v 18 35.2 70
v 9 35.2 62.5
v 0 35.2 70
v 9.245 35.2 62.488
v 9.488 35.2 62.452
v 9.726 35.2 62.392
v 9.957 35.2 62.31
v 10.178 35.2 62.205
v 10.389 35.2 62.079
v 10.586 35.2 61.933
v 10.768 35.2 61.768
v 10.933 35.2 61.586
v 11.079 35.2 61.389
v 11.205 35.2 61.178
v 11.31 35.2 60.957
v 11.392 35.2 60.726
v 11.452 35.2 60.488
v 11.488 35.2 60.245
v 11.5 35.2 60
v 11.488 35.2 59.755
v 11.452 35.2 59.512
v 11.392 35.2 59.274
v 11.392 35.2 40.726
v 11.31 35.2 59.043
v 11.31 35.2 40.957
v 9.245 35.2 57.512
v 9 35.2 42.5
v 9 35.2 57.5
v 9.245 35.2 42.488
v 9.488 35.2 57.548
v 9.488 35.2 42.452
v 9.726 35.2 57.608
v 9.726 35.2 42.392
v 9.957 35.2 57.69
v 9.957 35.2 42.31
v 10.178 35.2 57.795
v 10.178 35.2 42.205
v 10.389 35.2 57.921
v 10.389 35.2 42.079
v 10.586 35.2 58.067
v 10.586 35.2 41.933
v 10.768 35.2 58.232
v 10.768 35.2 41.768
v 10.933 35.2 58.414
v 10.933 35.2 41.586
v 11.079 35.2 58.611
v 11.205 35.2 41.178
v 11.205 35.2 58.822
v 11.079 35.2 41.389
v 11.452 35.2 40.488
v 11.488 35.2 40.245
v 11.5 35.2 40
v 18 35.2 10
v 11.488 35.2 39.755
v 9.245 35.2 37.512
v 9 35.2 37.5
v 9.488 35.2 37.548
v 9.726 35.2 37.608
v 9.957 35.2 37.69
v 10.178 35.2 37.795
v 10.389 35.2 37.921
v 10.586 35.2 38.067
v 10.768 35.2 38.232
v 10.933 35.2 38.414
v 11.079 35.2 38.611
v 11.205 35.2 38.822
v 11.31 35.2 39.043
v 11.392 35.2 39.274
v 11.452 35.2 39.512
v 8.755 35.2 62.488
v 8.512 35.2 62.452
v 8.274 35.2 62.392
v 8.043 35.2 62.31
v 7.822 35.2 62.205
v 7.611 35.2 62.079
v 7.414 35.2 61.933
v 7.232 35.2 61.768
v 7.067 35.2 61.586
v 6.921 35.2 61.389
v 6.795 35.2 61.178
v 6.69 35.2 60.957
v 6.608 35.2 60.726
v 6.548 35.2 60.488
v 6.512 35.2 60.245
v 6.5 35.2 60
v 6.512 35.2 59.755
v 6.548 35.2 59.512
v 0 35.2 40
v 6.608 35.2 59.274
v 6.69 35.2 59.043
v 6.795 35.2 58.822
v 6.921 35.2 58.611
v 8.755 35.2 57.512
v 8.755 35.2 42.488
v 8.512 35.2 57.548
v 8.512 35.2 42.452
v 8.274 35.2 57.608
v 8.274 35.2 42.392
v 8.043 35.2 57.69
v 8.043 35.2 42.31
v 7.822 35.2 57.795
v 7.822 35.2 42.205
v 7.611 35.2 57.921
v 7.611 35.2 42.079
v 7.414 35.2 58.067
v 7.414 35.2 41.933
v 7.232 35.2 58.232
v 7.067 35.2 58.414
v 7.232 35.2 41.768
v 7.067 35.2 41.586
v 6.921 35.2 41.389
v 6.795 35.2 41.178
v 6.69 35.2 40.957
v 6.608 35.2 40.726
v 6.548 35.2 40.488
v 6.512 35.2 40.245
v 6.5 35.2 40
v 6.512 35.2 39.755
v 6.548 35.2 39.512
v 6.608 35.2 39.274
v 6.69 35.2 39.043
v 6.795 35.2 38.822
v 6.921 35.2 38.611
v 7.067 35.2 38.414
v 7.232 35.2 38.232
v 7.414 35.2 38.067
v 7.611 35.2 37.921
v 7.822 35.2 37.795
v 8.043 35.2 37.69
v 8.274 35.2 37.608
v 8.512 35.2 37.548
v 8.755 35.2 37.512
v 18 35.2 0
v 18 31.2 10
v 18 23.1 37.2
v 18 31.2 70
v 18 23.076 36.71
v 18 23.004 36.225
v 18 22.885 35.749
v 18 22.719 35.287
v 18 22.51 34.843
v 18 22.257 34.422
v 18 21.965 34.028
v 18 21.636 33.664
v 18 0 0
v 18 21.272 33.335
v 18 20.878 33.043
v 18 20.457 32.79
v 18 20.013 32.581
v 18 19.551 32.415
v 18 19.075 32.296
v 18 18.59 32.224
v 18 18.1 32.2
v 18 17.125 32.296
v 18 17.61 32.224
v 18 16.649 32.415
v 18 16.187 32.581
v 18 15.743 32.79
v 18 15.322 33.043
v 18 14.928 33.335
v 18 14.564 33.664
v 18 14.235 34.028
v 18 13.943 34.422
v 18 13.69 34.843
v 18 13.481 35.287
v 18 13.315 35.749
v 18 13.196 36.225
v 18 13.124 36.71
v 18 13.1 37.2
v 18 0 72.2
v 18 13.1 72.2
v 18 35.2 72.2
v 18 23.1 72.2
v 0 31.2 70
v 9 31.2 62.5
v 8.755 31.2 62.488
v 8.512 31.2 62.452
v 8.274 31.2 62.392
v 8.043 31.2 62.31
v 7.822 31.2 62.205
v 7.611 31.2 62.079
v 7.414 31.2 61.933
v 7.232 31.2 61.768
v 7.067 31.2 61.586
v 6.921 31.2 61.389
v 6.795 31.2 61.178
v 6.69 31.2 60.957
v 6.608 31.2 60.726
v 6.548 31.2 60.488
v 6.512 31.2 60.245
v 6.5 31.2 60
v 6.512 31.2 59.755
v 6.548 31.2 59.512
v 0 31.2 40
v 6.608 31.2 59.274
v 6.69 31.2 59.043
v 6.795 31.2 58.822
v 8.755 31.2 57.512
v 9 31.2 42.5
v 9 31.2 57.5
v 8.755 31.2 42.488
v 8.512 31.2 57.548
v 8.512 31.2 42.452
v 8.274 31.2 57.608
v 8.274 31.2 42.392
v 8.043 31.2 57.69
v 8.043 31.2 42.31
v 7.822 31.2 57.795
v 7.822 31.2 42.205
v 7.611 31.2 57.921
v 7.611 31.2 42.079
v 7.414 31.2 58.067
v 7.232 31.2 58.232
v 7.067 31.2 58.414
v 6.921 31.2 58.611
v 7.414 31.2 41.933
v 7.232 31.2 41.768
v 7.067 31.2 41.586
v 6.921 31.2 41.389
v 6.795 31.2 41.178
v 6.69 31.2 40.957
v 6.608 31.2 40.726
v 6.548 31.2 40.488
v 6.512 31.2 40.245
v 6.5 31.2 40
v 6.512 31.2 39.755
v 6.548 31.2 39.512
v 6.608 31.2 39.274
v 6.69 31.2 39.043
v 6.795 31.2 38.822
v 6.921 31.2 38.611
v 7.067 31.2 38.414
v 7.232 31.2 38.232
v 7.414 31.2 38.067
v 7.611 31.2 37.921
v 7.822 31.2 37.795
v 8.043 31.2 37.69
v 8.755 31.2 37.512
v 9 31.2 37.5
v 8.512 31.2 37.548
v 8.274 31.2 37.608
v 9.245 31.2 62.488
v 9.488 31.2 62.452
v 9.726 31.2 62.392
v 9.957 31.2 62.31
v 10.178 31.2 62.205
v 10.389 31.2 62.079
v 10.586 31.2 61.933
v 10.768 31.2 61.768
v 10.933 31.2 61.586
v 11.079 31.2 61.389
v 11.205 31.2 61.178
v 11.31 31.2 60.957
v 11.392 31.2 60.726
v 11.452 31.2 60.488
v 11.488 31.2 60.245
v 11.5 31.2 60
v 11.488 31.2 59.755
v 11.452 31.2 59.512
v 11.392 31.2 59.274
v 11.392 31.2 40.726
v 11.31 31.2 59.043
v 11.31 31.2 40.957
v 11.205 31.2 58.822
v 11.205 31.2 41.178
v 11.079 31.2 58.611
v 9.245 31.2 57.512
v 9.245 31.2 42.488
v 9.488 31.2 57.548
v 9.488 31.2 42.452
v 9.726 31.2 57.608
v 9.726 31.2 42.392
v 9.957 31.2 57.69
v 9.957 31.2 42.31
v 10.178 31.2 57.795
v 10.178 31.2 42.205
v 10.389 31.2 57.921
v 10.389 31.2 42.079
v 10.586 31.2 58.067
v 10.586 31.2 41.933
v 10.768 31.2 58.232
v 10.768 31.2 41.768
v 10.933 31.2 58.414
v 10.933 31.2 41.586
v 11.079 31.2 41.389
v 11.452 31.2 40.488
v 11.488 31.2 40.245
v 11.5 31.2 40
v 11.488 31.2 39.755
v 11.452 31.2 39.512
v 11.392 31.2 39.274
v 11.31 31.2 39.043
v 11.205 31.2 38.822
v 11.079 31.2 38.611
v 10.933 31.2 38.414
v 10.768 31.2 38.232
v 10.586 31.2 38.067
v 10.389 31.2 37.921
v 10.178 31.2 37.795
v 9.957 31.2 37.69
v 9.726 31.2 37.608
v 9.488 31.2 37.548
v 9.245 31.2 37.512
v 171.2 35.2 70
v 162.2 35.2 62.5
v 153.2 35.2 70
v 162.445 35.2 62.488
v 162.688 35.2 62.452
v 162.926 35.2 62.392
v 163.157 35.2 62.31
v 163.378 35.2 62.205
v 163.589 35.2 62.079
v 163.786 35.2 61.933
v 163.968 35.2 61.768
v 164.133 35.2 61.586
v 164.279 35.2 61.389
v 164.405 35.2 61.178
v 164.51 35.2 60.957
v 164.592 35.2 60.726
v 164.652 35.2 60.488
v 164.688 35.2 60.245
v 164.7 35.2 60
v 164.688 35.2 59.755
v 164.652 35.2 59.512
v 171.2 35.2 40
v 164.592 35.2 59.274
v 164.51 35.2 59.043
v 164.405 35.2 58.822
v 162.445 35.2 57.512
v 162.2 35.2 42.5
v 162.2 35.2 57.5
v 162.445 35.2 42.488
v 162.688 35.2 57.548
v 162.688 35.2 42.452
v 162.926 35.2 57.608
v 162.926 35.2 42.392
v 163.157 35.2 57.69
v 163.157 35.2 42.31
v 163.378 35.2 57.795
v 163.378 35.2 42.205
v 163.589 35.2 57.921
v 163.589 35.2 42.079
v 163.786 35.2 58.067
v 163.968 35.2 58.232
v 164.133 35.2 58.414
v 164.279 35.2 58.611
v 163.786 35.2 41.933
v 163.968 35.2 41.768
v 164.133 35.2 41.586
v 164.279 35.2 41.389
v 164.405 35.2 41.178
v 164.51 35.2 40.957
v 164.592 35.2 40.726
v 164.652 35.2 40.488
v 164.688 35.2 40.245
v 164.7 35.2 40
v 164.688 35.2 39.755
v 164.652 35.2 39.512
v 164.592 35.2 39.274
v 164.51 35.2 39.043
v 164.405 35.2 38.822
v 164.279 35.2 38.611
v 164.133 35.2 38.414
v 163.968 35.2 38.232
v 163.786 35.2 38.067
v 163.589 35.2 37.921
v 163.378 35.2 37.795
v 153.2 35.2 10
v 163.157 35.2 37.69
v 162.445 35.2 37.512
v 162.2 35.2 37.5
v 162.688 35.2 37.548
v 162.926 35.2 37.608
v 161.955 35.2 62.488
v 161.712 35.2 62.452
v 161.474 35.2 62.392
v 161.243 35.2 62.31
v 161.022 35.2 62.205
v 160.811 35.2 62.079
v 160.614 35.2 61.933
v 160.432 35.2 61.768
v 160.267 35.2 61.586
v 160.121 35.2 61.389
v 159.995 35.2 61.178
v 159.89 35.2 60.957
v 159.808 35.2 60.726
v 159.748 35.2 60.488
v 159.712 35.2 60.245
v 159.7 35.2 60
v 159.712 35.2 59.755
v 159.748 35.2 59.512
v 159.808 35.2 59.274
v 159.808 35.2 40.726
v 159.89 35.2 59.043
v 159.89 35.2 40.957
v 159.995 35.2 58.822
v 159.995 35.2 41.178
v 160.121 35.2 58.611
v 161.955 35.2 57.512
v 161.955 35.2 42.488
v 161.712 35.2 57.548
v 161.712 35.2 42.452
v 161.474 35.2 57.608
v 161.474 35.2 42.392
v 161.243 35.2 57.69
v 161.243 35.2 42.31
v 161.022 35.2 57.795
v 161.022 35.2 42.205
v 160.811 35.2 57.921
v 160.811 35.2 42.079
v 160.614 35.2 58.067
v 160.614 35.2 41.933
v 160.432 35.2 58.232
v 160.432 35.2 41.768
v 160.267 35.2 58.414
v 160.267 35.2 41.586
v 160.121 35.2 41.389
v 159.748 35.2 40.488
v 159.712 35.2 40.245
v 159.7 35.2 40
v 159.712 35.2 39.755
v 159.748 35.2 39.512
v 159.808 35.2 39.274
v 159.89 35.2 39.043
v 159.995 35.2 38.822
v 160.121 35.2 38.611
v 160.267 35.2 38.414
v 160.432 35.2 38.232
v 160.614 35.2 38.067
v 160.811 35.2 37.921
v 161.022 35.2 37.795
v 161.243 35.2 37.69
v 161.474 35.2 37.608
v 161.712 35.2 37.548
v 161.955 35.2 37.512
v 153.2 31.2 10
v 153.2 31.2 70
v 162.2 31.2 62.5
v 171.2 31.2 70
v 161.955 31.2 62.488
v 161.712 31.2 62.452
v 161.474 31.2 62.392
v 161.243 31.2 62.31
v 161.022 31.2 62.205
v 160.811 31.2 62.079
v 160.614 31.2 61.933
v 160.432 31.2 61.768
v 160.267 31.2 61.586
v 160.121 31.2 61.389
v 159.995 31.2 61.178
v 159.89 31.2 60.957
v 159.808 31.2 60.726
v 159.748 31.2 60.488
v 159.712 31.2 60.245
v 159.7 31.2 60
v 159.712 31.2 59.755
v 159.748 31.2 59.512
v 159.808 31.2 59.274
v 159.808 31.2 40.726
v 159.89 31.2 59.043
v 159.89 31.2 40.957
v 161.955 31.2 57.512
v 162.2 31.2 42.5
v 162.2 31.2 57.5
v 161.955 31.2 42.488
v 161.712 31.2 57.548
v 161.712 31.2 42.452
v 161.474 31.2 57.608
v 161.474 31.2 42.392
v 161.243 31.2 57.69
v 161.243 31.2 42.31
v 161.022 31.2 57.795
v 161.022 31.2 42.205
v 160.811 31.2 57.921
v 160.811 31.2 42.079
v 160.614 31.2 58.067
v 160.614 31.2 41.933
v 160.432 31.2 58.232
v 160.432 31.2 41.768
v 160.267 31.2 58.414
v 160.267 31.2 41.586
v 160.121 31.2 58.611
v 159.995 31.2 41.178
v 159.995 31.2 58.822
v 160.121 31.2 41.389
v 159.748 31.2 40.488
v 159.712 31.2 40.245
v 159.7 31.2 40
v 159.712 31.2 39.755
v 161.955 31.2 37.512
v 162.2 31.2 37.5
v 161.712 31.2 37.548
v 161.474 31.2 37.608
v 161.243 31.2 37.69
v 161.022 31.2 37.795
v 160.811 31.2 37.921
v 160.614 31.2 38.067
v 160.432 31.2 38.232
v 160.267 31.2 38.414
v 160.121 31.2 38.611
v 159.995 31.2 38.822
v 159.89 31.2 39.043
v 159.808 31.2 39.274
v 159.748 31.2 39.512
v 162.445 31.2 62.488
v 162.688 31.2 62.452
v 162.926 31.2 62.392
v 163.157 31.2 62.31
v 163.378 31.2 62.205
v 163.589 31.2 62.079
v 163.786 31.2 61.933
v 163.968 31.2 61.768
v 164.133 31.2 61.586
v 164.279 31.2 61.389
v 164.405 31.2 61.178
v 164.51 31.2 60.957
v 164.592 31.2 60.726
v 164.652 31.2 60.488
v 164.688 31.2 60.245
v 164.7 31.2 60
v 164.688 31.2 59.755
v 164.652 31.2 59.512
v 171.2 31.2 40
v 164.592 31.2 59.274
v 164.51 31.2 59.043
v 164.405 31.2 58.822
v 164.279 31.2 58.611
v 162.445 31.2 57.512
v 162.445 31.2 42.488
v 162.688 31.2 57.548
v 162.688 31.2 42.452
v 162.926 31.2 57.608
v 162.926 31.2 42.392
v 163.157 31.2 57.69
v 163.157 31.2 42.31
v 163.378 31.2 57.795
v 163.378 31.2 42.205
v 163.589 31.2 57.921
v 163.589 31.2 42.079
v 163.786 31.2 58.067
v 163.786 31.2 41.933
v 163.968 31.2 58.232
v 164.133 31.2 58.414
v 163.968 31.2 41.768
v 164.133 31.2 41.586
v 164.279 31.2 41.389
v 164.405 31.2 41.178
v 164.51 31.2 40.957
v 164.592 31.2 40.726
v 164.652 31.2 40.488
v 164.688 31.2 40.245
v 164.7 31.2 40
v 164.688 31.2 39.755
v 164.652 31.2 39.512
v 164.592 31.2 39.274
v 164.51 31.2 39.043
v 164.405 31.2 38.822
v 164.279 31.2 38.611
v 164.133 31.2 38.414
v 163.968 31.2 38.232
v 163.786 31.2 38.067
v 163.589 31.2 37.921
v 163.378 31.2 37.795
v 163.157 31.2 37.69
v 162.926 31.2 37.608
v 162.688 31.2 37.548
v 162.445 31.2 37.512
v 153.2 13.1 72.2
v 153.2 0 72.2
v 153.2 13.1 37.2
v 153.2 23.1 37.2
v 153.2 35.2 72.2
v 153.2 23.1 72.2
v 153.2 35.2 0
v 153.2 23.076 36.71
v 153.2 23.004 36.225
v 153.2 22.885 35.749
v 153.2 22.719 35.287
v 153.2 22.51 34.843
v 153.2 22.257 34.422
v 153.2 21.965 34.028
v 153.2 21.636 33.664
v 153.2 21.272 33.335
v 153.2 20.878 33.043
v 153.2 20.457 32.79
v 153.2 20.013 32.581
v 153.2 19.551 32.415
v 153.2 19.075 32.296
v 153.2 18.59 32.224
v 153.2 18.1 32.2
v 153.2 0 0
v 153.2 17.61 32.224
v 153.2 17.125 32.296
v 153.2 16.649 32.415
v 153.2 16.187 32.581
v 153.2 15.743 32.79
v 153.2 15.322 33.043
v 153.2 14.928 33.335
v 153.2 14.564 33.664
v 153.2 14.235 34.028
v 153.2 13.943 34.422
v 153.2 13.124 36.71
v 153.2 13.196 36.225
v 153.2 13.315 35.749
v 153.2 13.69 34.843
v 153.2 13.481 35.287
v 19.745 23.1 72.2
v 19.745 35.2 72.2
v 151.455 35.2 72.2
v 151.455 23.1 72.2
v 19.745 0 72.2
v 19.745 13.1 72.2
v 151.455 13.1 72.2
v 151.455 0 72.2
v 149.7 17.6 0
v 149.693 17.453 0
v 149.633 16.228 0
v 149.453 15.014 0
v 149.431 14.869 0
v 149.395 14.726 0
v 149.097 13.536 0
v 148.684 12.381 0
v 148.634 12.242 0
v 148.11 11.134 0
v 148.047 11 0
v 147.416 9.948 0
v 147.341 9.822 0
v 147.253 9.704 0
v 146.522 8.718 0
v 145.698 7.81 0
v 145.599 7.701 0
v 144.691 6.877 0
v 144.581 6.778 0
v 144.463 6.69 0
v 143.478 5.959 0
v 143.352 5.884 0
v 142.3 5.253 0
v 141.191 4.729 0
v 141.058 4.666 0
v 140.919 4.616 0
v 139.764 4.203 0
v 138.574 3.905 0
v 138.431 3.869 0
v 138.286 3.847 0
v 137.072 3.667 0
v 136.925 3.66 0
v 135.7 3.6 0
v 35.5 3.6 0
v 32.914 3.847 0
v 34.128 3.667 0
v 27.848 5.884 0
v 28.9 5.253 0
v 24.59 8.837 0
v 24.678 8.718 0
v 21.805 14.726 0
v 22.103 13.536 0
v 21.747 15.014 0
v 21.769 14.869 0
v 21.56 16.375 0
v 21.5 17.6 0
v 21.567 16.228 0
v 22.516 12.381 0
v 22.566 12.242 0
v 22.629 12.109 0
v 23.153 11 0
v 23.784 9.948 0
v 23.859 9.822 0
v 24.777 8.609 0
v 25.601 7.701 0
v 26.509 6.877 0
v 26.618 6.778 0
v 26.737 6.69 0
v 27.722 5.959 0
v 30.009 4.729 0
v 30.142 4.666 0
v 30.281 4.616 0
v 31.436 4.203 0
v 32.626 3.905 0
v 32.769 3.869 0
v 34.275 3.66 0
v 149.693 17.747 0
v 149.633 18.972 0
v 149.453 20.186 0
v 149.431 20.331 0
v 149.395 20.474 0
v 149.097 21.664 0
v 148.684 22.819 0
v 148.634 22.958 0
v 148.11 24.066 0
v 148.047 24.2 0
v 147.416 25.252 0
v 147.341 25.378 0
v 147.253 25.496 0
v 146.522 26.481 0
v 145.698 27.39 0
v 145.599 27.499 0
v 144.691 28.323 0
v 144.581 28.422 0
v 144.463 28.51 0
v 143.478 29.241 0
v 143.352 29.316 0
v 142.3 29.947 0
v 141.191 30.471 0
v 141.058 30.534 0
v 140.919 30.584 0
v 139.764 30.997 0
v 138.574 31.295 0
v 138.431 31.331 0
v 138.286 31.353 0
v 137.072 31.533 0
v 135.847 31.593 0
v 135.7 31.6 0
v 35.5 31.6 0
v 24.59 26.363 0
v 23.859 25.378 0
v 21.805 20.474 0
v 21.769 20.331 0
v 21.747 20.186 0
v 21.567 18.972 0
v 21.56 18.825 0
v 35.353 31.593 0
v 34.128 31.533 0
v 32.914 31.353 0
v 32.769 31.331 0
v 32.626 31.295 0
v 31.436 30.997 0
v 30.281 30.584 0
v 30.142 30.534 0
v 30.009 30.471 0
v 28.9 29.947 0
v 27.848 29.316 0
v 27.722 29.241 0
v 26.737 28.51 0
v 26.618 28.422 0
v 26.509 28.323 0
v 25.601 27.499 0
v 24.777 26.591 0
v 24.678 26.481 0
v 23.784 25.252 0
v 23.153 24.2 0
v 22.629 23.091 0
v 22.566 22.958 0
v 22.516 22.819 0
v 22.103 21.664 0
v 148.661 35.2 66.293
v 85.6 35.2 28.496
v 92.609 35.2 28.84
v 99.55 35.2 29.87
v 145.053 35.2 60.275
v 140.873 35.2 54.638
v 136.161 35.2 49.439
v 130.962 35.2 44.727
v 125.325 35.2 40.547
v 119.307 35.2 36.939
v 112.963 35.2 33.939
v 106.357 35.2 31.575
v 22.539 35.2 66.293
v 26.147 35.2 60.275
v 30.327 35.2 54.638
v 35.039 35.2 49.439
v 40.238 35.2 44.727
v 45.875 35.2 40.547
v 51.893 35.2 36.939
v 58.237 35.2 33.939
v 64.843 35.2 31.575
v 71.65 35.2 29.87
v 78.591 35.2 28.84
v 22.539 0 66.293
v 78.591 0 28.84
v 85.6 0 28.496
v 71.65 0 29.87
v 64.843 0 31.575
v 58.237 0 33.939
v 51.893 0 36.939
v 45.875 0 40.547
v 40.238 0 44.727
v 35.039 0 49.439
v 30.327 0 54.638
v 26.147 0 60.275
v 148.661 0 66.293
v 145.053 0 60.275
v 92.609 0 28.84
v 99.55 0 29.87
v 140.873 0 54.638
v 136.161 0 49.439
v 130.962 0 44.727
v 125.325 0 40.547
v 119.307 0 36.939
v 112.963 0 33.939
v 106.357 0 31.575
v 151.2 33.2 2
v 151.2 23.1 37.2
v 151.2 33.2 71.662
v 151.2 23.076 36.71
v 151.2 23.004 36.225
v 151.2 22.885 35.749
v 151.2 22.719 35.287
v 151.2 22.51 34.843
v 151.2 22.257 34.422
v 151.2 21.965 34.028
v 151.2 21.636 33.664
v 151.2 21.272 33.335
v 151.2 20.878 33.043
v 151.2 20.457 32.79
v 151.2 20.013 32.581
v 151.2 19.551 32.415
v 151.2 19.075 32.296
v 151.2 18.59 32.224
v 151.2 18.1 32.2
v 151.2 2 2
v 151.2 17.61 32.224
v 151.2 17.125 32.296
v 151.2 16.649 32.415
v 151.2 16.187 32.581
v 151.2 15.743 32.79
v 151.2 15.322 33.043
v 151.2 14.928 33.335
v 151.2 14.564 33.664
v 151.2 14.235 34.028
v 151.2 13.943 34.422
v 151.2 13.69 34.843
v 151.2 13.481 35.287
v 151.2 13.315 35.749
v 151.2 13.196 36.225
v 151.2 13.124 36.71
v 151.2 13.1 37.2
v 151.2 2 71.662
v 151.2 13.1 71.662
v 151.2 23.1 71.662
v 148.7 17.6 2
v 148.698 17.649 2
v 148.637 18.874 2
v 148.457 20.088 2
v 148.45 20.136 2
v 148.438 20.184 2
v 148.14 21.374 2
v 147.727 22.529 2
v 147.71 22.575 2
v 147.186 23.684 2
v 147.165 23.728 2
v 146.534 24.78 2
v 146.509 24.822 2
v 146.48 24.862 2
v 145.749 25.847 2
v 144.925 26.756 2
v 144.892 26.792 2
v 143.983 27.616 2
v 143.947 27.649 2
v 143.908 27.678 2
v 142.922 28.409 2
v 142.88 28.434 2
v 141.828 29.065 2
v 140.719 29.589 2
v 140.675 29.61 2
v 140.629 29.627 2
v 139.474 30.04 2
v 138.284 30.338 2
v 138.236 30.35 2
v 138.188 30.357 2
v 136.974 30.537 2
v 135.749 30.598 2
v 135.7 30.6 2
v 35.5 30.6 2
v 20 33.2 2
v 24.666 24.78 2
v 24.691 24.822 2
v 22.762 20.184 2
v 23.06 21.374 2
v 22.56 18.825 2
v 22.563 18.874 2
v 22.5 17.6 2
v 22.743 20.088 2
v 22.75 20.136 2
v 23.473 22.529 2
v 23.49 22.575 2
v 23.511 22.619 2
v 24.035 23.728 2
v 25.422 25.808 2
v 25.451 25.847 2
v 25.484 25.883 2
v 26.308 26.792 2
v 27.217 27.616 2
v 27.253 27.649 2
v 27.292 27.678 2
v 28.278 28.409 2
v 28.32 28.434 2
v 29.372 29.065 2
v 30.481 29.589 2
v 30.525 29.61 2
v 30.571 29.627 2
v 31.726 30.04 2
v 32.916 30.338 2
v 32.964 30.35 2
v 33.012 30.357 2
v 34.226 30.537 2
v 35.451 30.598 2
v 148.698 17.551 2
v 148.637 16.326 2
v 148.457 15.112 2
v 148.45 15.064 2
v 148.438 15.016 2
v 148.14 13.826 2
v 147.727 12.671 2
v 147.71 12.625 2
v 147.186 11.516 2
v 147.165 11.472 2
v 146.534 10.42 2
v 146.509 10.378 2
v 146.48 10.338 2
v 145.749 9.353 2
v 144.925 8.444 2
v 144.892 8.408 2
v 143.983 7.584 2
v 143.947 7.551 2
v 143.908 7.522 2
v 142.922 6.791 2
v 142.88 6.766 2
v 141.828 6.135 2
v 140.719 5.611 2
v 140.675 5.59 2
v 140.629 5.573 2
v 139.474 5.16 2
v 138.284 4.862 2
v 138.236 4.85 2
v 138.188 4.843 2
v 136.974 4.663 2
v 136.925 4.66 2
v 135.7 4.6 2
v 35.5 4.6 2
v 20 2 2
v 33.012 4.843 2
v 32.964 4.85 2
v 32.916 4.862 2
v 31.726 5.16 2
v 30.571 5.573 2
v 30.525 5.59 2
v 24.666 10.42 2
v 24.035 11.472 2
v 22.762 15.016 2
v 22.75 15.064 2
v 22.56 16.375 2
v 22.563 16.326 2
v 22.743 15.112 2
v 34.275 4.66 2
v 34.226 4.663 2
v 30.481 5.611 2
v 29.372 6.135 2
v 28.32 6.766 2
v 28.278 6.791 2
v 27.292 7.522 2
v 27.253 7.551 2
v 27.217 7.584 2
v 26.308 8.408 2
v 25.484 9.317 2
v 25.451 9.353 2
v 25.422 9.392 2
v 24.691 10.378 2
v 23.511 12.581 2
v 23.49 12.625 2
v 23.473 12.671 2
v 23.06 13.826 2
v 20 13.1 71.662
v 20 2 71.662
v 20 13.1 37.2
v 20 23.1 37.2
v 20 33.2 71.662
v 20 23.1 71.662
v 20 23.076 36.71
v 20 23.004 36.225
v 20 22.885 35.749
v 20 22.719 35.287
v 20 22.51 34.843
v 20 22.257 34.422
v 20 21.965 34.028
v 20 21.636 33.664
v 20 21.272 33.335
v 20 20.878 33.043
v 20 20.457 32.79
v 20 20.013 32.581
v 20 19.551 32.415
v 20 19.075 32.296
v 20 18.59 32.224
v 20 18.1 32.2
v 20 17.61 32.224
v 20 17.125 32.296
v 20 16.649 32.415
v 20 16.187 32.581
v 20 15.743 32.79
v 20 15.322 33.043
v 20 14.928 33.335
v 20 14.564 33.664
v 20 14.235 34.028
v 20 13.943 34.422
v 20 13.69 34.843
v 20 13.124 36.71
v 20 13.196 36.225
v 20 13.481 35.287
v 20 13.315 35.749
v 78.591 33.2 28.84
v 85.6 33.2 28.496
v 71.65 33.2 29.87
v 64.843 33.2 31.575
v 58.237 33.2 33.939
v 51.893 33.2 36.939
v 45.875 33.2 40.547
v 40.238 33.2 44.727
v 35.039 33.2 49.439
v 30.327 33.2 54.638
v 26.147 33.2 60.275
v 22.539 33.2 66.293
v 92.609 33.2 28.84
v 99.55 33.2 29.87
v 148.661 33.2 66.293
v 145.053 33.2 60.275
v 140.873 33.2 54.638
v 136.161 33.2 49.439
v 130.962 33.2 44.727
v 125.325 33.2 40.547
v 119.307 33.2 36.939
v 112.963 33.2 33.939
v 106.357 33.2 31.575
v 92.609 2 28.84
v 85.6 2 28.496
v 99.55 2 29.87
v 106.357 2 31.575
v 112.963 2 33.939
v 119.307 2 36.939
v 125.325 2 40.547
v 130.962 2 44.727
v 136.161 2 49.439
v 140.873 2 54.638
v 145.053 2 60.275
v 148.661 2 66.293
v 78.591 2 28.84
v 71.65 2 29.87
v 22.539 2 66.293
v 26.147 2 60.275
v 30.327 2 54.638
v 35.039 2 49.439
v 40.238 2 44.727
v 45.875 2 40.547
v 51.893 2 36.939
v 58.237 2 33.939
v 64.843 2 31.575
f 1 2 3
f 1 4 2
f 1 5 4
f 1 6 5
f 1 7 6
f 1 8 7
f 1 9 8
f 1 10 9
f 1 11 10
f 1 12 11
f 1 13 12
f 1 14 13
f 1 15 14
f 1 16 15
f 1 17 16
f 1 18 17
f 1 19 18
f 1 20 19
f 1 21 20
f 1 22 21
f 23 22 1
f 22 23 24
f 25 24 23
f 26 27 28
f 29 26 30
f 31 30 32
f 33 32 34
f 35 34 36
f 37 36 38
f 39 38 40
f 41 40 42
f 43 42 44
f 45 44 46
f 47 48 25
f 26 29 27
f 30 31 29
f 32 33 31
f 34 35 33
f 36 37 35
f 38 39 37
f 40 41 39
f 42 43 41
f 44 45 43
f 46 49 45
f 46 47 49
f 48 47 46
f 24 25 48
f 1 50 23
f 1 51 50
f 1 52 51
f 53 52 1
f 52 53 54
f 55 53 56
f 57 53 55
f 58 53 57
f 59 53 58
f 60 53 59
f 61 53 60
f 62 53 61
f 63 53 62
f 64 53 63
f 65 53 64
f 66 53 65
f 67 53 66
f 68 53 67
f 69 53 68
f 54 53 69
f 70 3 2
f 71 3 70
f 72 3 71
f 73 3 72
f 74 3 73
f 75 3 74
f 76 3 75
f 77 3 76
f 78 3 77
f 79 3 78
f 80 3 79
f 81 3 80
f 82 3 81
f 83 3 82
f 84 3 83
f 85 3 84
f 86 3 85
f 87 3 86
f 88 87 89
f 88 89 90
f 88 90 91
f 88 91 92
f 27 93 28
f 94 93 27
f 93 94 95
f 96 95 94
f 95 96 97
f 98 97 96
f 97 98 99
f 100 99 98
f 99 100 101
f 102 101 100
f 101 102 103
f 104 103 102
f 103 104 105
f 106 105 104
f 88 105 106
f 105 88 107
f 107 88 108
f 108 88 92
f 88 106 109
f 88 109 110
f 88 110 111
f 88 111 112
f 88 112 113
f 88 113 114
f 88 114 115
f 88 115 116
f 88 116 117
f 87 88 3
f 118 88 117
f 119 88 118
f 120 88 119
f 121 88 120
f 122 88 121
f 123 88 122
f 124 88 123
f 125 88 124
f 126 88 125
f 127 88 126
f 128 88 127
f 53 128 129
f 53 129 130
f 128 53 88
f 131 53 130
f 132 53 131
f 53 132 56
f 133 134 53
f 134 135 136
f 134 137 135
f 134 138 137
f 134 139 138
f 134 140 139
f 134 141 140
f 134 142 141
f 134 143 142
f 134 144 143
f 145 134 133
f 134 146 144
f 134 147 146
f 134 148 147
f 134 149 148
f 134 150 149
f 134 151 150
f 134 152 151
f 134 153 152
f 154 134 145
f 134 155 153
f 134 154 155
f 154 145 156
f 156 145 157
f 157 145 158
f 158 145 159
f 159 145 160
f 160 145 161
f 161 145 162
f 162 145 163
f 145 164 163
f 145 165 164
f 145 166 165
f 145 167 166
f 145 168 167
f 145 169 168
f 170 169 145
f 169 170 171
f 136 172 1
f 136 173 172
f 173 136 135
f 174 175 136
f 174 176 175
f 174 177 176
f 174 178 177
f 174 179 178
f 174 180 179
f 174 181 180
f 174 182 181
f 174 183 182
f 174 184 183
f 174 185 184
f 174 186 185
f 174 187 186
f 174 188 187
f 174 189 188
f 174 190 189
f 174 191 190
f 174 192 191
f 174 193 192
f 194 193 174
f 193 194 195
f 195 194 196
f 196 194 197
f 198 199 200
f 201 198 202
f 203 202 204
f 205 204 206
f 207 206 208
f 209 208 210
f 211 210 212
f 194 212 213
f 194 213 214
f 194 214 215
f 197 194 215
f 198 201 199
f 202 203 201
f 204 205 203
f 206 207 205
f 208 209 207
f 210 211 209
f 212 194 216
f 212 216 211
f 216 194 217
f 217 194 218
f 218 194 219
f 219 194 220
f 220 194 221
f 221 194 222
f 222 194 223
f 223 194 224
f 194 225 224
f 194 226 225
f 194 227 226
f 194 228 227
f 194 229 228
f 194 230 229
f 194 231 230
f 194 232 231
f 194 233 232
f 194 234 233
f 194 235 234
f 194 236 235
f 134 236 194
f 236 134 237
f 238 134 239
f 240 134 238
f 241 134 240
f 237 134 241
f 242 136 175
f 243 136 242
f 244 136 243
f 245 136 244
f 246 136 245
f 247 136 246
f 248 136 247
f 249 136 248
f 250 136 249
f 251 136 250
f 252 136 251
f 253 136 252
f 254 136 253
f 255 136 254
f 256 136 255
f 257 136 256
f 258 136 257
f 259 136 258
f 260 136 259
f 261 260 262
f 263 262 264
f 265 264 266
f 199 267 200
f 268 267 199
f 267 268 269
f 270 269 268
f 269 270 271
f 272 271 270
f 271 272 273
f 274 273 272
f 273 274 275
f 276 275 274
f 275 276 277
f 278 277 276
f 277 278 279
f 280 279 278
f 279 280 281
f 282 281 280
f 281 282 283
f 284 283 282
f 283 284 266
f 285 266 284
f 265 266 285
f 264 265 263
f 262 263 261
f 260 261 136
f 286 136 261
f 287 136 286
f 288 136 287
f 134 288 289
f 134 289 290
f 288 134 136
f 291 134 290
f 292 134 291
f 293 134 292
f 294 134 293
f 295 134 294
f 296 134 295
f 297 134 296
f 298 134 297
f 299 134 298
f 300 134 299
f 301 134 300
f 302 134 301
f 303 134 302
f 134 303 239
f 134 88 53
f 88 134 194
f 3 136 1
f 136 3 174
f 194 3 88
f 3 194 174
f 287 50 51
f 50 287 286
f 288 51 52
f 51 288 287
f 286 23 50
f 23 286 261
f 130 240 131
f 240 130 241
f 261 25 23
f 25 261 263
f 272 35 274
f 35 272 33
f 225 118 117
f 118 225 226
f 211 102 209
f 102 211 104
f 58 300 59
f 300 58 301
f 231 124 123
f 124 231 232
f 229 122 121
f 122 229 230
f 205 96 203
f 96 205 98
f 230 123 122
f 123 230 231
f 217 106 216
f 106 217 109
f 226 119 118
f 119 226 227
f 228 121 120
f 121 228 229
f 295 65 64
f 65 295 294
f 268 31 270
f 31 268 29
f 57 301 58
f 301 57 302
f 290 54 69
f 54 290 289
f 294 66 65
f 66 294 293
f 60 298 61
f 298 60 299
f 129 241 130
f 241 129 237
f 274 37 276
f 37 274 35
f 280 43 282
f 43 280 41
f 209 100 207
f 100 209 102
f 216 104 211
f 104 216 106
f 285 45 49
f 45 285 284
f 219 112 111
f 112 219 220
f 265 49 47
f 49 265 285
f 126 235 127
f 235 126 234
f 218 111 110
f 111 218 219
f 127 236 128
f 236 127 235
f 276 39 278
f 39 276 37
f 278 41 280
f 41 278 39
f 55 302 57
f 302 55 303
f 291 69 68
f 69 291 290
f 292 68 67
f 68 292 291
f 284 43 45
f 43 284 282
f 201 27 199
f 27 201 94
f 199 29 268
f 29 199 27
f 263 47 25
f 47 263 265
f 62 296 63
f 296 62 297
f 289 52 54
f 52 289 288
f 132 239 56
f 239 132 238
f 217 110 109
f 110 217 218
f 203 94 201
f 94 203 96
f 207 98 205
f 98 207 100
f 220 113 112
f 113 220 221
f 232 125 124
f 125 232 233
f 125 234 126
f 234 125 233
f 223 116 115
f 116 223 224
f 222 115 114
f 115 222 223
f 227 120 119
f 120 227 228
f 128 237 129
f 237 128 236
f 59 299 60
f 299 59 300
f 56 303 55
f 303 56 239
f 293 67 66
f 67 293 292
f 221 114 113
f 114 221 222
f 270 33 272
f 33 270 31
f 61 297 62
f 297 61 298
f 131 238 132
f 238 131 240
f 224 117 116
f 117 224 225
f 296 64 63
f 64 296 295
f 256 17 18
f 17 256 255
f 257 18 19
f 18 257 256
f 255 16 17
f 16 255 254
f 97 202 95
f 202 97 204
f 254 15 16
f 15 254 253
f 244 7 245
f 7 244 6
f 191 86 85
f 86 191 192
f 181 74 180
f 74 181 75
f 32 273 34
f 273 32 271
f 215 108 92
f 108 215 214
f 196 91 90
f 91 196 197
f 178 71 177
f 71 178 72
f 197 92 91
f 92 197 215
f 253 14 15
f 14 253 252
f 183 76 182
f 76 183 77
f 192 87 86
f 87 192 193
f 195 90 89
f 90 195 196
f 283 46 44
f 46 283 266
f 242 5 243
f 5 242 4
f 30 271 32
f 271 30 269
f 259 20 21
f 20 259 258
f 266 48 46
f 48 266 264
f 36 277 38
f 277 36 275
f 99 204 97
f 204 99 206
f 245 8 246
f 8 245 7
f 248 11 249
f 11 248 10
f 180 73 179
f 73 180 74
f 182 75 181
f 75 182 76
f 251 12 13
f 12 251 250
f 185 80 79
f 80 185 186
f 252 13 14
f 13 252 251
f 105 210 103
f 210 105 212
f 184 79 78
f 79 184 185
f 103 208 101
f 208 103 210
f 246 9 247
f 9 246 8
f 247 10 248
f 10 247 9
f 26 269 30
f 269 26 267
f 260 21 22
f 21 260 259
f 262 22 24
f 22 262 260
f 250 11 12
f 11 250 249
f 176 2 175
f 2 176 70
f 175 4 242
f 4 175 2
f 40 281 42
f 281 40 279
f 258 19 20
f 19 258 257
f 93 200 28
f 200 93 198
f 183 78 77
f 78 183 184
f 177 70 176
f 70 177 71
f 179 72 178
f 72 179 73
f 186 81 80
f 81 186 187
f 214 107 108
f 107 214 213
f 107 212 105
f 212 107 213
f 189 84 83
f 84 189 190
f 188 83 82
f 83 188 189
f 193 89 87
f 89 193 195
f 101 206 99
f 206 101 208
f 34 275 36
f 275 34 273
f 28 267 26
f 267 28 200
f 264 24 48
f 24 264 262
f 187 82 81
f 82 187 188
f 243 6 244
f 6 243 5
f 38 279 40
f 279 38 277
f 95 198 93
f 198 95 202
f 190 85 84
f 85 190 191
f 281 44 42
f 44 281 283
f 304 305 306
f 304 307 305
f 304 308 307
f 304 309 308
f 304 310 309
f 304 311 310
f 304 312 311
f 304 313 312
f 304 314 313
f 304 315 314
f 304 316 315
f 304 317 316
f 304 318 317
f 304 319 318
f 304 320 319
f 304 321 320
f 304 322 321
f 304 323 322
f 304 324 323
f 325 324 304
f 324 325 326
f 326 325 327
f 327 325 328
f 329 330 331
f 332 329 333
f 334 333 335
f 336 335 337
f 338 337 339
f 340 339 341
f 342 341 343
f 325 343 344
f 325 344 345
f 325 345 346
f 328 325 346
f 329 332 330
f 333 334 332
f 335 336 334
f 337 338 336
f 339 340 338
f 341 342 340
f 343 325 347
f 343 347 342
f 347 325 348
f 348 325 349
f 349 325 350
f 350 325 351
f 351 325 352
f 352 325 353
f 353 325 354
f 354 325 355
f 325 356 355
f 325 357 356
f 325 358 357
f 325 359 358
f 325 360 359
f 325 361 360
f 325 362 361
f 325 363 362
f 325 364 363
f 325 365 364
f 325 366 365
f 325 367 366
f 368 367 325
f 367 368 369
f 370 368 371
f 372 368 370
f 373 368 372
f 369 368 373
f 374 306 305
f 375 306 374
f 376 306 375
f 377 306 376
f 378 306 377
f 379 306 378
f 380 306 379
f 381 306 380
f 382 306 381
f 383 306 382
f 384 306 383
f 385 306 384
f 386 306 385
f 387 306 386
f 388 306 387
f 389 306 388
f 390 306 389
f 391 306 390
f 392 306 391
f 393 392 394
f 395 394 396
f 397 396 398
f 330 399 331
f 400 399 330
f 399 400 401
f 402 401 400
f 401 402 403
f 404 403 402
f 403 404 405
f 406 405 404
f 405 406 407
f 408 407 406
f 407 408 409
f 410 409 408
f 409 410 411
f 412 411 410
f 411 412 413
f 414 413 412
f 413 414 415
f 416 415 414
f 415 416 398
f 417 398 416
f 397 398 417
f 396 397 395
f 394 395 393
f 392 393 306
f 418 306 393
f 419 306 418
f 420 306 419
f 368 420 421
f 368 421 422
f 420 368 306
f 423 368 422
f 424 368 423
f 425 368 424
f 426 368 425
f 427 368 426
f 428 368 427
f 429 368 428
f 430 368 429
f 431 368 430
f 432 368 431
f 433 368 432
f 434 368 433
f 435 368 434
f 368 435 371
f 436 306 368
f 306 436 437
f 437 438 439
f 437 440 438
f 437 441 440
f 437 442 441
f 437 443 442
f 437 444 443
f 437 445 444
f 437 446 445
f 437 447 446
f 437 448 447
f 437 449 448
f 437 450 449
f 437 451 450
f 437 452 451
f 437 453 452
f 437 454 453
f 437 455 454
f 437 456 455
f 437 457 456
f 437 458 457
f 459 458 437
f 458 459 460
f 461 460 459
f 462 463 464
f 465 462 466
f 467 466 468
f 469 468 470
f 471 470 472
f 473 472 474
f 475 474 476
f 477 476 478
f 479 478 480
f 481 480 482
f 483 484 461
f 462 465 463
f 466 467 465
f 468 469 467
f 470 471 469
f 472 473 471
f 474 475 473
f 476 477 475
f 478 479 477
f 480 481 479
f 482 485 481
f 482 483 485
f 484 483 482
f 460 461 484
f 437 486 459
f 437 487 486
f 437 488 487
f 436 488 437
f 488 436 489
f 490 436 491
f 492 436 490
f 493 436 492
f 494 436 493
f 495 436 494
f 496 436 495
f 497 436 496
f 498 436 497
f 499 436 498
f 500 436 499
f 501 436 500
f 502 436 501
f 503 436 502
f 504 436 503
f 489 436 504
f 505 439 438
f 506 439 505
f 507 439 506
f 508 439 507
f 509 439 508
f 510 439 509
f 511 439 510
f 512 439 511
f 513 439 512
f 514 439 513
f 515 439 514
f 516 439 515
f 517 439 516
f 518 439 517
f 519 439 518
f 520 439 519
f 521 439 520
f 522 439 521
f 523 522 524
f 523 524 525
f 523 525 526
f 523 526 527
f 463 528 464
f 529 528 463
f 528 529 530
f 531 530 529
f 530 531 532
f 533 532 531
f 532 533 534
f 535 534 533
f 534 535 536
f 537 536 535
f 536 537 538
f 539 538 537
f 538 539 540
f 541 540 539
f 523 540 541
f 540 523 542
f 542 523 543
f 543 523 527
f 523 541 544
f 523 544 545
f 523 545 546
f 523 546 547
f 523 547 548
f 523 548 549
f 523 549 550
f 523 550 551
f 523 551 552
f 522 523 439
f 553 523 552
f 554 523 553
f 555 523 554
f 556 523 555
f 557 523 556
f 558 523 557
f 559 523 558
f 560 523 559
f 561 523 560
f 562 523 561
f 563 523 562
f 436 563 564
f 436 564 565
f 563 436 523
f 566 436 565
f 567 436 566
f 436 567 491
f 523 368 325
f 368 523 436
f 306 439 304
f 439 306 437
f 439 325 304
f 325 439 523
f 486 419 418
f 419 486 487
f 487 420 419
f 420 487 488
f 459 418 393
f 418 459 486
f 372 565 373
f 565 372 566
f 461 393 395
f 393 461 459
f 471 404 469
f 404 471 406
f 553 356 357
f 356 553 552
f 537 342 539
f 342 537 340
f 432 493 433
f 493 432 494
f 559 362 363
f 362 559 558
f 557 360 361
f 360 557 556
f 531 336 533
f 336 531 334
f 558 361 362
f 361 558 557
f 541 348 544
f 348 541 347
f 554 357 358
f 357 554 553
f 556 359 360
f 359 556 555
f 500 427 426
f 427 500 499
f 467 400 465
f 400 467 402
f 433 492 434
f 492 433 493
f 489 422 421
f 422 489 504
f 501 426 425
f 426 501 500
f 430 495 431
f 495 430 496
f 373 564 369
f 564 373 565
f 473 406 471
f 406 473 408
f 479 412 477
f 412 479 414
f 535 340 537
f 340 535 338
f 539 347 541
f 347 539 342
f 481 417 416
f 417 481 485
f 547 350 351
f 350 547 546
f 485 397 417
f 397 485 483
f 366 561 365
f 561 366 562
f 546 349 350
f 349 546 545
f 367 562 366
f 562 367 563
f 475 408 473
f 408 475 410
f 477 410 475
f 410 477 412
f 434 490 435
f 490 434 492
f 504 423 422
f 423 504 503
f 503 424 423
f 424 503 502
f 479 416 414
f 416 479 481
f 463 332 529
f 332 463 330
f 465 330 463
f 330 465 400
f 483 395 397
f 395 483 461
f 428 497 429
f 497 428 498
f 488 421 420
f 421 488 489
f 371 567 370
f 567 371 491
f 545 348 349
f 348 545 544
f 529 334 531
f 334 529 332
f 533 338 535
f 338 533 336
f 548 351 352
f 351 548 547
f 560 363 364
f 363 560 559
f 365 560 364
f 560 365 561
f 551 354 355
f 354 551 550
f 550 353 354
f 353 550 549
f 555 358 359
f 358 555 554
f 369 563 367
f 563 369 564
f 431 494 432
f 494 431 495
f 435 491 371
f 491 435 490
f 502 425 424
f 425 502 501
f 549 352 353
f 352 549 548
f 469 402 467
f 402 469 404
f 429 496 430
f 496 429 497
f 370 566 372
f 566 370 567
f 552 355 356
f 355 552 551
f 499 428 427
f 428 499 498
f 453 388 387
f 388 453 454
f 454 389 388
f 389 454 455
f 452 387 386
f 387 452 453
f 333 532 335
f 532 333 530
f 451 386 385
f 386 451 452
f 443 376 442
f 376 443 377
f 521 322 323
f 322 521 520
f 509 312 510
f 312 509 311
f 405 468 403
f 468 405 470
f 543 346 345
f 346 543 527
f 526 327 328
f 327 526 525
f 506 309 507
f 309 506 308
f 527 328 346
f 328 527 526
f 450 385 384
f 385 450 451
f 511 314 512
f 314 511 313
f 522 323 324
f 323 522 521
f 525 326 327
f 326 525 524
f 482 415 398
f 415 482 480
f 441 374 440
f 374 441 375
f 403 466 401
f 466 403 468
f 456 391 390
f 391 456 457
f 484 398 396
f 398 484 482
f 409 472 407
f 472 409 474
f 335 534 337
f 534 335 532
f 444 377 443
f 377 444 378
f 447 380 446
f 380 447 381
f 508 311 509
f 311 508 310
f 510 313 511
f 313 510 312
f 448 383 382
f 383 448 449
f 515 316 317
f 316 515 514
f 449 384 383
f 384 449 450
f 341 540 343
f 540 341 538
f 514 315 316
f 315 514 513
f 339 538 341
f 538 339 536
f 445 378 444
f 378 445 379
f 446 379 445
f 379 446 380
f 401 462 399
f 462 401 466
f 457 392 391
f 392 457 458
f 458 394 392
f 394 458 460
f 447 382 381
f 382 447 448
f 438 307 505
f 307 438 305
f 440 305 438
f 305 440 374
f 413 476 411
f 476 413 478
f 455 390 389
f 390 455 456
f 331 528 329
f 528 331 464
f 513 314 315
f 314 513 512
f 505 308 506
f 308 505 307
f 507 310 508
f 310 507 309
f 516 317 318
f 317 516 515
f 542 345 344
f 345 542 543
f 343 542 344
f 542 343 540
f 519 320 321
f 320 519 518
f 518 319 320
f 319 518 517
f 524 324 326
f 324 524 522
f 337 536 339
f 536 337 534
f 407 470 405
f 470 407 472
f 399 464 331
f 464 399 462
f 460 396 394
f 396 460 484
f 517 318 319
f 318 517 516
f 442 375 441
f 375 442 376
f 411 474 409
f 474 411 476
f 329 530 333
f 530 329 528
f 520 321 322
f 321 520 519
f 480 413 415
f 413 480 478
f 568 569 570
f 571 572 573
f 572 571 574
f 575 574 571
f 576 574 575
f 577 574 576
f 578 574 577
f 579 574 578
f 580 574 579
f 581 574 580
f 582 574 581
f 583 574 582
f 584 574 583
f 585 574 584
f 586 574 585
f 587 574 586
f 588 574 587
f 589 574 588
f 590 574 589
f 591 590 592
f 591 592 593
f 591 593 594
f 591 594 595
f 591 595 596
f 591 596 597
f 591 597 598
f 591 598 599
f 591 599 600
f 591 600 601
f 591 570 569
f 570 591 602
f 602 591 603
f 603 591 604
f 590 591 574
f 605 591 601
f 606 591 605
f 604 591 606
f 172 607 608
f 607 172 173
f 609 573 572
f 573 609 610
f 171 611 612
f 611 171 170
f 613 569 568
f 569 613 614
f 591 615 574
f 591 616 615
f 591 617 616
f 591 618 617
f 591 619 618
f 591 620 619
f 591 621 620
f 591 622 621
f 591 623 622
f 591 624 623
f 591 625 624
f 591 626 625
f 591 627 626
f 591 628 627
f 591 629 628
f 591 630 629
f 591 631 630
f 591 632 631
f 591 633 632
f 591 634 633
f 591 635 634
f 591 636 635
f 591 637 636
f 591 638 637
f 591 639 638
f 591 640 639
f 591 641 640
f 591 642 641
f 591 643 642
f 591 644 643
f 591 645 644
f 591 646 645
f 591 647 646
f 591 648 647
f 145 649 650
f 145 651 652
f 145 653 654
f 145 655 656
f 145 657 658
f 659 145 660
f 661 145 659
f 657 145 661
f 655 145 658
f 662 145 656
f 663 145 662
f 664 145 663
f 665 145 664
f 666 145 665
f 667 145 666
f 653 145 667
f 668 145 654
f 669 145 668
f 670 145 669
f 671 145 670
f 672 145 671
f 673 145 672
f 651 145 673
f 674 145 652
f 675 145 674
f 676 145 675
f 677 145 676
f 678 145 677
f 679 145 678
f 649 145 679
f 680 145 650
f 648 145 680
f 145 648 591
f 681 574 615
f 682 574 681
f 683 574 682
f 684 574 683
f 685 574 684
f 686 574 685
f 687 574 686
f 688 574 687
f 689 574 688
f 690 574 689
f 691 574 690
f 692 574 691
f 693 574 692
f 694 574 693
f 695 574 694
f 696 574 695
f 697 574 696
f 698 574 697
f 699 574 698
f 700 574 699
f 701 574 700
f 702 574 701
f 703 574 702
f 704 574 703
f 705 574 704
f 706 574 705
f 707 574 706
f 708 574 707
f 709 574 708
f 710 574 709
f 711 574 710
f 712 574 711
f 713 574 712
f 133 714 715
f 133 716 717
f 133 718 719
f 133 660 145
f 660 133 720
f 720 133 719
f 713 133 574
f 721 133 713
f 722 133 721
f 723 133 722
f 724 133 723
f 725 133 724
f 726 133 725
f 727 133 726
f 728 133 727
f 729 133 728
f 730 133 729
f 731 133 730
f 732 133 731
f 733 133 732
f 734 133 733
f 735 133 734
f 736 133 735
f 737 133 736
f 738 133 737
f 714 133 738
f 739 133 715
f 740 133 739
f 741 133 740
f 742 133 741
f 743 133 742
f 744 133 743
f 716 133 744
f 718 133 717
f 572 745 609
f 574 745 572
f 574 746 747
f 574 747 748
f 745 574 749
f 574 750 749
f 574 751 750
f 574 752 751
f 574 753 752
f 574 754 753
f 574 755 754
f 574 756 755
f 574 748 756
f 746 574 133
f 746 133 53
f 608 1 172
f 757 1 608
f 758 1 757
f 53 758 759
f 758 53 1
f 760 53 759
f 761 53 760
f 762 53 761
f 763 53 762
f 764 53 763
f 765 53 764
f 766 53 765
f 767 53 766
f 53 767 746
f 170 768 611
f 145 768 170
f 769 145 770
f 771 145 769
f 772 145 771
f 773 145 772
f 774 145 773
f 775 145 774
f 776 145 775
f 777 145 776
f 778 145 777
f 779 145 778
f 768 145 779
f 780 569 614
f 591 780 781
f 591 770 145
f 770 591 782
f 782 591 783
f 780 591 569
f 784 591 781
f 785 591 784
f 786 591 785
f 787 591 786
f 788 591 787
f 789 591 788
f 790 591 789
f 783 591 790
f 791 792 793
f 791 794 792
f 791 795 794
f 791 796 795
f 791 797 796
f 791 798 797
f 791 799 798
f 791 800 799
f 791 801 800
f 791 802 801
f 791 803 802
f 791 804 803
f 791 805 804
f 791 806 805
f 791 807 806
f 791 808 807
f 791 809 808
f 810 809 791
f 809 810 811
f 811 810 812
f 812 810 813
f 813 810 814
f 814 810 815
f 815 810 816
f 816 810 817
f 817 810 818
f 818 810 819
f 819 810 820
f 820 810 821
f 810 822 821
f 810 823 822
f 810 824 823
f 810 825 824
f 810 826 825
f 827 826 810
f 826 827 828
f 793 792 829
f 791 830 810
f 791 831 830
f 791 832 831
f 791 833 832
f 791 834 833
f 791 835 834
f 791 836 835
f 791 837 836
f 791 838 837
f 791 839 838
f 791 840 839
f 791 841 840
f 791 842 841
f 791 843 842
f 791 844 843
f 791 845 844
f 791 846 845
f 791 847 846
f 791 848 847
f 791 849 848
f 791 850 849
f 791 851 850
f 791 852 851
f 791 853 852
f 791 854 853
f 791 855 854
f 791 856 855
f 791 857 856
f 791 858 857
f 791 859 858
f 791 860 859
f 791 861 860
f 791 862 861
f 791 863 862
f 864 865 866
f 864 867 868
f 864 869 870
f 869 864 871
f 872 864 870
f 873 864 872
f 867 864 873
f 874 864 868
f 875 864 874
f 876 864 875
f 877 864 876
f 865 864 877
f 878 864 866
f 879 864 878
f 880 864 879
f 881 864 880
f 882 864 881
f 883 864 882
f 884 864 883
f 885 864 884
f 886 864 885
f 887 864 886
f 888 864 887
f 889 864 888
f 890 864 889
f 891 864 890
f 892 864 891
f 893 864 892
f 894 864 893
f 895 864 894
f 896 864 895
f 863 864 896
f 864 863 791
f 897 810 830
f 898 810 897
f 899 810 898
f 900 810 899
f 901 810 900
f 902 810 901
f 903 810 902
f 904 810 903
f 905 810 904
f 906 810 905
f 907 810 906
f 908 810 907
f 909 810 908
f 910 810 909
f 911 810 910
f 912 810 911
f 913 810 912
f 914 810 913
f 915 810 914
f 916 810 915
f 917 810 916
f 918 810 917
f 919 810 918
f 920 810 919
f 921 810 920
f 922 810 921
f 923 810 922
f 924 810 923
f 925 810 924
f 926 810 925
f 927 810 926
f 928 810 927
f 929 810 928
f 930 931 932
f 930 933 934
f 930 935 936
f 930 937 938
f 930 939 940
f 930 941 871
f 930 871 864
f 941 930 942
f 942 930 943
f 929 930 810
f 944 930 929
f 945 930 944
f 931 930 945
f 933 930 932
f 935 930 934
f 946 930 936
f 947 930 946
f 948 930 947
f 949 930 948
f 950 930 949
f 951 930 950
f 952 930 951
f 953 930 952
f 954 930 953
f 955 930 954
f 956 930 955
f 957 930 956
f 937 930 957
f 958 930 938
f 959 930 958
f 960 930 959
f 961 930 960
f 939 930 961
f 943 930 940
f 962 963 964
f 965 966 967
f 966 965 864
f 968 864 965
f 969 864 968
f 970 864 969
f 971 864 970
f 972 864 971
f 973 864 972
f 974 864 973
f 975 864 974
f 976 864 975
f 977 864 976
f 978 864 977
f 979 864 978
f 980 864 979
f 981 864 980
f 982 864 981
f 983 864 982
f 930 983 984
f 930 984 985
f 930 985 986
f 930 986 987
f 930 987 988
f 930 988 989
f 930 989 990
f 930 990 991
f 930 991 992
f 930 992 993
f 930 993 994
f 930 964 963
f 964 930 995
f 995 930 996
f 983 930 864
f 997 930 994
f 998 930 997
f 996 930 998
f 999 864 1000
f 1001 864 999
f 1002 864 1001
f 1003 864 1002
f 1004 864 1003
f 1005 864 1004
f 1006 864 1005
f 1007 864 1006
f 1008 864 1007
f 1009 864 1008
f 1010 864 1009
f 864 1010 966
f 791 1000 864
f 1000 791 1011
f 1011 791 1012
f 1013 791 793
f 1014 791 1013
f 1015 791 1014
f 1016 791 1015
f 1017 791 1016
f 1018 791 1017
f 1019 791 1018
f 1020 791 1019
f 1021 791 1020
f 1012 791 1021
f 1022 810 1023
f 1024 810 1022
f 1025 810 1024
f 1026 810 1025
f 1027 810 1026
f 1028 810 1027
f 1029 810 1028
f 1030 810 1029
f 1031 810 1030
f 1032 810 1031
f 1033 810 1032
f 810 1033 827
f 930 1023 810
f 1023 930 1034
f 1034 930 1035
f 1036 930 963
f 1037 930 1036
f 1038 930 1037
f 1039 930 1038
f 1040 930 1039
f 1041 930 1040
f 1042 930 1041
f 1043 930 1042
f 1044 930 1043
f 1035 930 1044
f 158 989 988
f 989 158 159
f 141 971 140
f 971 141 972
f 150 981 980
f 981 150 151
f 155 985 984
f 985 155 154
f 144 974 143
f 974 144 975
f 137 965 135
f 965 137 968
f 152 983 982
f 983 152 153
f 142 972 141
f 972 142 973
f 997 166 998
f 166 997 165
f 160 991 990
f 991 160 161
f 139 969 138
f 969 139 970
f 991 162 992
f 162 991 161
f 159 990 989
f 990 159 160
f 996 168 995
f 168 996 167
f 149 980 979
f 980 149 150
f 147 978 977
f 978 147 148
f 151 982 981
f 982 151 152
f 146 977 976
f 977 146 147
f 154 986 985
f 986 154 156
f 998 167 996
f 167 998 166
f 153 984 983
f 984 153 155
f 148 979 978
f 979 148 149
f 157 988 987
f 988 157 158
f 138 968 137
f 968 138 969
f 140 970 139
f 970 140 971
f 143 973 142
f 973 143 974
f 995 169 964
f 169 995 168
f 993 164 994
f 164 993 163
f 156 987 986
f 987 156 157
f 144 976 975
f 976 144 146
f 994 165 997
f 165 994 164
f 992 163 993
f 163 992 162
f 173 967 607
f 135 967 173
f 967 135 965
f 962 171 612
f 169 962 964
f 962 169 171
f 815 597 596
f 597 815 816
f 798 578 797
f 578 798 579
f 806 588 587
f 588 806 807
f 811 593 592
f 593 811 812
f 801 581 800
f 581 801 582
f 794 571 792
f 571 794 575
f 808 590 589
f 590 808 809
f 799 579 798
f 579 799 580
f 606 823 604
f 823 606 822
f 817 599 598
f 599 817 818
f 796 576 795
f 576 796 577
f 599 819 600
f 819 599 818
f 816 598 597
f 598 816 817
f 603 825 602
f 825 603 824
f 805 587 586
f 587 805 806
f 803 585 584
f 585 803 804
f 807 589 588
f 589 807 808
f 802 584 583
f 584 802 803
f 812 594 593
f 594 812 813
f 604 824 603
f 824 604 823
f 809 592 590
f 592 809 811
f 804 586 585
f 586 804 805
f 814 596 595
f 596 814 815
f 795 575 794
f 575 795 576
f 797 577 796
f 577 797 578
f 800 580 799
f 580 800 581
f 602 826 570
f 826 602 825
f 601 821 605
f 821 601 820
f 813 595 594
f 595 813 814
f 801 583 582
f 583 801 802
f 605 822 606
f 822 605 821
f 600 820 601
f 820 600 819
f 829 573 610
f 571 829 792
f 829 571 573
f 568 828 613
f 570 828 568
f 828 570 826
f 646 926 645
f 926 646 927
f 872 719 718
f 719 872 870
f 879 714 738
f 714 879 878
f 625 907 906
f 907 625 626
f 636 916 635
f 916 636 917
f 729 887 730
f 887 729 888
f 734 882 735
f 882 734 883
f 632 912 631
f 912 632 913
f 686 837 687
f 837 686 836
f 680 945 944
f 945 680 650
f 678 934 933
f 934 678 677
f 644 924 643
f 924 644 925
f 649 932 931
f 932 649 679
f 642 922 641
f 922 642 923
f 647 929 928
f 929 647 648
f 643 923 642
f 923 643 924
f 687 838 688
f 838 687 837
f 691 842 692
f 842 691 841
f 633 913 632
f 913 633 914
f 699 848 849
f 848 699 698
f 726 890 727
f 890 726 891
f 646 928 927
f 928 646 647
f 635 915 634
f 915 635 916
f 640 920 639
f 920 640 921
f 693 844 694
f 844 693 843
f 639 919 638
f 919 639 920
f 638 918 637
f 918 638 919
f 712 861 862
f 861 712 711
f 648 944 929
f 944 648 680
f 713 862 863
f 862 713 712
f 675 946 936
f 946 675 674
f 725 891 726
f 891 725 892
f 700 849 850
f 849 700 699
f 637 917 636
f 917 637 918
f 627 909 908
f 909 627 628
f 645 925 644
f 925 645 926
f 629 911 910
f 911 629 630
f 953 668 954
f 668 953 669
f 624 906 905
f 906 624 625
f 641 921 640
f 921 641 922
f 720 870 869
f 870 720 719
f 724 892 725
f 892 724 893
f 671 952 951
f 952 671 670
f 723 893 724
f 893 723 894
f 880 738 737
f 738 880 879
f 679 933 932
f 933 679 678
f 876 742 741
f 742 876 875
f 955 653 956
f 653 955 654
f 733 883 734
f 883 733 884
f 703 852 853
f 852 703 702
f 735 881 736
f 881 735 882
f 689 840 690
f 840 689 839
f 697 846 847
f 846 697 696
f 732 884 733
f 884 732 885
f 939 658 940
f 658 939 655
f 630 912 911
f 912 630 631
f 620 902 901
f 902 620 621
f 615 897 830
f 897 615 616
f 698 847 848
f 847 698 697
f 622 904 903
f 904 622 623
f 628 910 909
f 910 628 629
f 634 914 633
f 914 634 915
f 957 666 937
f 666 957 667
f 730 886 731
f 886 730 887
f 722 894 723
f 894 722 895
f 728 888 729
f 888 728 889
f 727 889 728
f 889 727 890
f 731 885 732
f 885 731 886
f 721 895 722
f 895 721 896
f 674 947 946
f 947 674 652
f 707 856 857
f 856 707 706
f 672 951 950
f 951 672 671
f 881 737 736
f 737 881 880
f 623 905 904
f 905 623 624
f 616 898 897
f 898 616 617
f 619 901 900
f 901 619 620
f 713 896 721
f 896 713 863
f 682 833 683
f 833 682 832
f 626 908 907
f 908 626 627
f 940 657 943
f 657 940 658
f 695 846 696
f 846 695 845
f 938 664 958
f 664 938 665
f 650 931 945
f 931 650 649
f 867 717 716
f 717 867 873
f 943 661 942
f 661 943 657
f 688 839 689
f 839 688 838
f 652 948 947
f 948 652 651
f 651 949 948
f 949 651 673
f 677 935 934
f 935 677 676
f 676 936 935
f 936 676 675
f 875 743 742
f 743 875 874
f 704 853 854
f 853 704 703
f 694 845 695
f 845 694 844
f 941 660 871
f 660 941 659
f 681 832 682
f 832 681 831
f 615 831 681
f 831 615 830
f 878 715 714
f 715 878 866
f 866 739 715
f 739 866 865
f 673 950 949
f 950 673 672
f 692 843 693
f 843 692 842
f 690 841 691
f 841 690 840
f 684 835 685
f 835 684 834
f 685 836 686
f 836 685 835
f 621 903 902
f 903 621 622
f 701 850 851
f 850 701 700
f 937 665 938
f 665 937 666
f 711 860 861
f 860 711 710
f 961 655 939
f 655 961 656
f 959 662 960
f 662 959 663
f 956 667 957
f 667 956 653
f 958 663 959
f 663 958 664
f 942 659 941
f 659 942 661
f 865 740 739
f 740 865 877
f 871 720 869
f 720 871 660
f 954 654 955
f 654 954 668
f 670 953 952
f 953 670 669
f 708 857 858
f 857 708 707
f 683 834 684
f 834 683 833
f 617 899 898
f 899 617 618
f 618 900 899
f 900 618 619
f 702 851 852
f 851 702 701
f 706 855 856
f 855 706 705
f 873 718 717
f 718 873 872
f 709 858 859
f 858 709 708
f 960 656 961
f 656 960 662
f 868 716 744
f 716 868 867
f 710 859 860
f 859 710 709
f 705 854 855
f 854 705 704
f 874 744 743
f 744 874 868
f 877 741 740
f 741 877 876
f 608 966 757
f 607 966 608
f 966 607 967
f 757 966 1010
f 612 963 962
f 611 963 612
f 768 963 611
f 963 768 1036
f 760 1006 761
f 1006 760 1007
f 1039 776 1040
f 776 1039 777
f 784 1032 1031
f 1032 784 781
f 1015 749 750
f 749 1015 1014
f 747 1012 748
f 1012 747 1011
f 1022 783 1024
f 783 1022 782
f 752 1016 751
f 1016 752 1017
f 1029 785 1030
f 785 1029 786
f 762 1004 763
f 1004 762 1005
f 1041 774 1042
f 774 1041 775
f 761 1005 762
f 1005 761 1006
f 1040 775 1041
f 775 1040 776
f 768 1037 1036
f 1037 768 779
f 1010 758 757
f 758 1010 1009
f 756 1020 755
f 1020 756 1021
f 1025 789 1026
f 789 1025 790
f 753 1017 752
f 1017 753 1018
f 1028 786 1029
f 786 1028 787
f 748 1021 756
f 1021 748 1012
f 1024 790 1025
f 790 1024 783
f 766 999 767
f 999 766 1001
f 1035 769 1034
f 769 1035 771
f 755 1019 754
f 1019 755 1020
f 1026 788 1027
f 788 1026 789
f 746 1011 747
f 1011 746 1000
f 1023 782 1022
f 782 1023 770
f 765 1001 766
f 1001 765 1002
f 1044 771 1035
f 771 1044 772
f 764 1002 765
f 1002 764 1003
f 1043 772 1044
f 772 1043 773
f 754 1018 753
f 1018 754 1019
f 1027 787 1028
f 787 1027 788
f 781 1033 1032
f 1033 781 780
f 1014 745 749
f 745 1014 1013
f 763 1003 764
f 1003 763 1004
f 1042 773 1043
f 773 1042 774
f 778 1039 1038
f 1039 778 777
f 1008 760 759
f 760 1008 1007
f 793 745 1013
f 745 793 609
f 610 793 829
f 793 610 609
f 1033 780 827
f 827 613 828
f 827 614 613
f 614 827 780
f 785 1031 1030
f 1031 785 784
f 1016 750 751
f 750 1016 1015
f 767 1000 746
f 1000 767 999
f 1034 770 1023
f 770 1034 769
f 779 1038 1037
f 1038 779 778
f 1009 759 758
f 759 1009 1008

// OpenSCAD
/*
h 70.2
w 130
d 30

8.5 channel extending 40 mm down right side

10 x 45 opening on bottom, starting 5 mm from left side
*/

wiggle = 1.2;

mh = 70.2;
mw = 130 + wiggle;
md = 30 + wiggle;

wall_thickness = 2;

side_notch_tall = 40;
side_notch_width = 9;

bh_end = 3;
bhw = 120;
bhw = mw - (2*bh_end);
bhd = 25;

screw_size = 5;

module mainBody() {
    difference() {
        oversize = 2 * wall_thickness;
        cube([mw + oversize, md + oversize, mh + wall_thickness]);
        translate([wall_thickness,wall_thickness,wall_thickness])
            cube([mw, md, mh+1]);
    }
}

module sideNotch(size, tall) {
    translate([0,0,size/2])
        cube([wall_thickness+2, size, tall-(size/2)]);
    difference() {
        translate([0,size/2,size/2]) rotate([0,90,0]) cylinder(wall_thickness + 2, d=size);
        translate([0,0,size/2])
            cube([wall_thickness+2, size, size]);
    }
}

module bottomNotch() {
    notch_size = 15;
    translate([0,notch_size,0])
        sphere(notch_size);
}

module bottomHole() {
    translate([bhd/2, bhd/2, 0]) cylinder(wall_thickness+1, d=bhd);
    translate([bhd/2, 0, 0]) cube([bhw-bhd, bhd, wall_thickness+1]);
    translate([bhw-(bhd/2), bhd/2, 0]) cylinder(wall_thickness+1, d=bhd);
}


module bottomHole2() {
    minkowski() {
    
        linear_extrude(wall_thickness + 1) {
            translate([bhd/2, bhd/2, 0]) circle(d=bhd);
            translate([bhd/2, 0, 0]) square([bhw-bhd, bhd]);
            translate([bhw-(bhd/2), bhd/2, 0]) circle(d=bhd);
        }
        rotate_extrude()polygon([ [0,0] , [4, -8], [0, -8] ]);
    }
}


module screwTab() {
    tx = 18;
    ty = 30;
    tt = wall_thickness * 2;
    
    module tabBody() {
        rotate([90,0,0])
            translate([0,0,-tt])
                linear_extrude(tt)
                    polygon(points = [ [0, ty], [tx, ty], [tx, 0] ]);
        translate([0,0,ty])
            cube([tx, tt, ty]);
    }
    
    difference() {
        tabBody();
        
        rotate([90,0,0])
            translate([tx/2,ty,-tt])
                cylinder(tt, d=screw_size);
        rotate([90,0,0])
            translate([tx/2,ty+20,-tt])
                cylinder(tt, d=screw_size);
    }
}


module thing() {
    $fn=64;
    
    // housing body, shifted to accomodate screw tabs
    translate([18,0,0]) {
        difference() {
            
            /* */
            mainBody();
            
            translate([0,wall_thickness+(md/2)-(side_notch_width/2),(mh+wall_thickness)-side_notch_tall])
                sideNotch(10, side_notch_tall);
            
            translate([mw + wall_thickness - 1,(wall_thickness+(md/2)-(side_notch_width/2)),(mh+wall_thickness)-side_notch_tall])
                sideNotch(10, side_notch_tall);
            /*
            translate([wall_thickness+mw/2,-(md/2),0])
                bottomNotch();
            */
            bottom_hole_shift = (md/2) - (bhd/2) + wall_thickness;
            translate([(mw+wall_thickness)-bhw-bh_end,bottom_hole_shift,0])
                bottomHole2();
            
            
            rotate([90,0,0])
                translate([mw/2 + wall_thickness,100,0])
                    cylinder(100, d=mw*1.09, center=true);

        }
    }
    
    // left tab
    translate([0,md,10])
        screwTab();
    
    // right tab
    translate([mw+(wall_thickness*2)+18*2,md,10])            
        mirror()
            screwTab();
}
thing();
